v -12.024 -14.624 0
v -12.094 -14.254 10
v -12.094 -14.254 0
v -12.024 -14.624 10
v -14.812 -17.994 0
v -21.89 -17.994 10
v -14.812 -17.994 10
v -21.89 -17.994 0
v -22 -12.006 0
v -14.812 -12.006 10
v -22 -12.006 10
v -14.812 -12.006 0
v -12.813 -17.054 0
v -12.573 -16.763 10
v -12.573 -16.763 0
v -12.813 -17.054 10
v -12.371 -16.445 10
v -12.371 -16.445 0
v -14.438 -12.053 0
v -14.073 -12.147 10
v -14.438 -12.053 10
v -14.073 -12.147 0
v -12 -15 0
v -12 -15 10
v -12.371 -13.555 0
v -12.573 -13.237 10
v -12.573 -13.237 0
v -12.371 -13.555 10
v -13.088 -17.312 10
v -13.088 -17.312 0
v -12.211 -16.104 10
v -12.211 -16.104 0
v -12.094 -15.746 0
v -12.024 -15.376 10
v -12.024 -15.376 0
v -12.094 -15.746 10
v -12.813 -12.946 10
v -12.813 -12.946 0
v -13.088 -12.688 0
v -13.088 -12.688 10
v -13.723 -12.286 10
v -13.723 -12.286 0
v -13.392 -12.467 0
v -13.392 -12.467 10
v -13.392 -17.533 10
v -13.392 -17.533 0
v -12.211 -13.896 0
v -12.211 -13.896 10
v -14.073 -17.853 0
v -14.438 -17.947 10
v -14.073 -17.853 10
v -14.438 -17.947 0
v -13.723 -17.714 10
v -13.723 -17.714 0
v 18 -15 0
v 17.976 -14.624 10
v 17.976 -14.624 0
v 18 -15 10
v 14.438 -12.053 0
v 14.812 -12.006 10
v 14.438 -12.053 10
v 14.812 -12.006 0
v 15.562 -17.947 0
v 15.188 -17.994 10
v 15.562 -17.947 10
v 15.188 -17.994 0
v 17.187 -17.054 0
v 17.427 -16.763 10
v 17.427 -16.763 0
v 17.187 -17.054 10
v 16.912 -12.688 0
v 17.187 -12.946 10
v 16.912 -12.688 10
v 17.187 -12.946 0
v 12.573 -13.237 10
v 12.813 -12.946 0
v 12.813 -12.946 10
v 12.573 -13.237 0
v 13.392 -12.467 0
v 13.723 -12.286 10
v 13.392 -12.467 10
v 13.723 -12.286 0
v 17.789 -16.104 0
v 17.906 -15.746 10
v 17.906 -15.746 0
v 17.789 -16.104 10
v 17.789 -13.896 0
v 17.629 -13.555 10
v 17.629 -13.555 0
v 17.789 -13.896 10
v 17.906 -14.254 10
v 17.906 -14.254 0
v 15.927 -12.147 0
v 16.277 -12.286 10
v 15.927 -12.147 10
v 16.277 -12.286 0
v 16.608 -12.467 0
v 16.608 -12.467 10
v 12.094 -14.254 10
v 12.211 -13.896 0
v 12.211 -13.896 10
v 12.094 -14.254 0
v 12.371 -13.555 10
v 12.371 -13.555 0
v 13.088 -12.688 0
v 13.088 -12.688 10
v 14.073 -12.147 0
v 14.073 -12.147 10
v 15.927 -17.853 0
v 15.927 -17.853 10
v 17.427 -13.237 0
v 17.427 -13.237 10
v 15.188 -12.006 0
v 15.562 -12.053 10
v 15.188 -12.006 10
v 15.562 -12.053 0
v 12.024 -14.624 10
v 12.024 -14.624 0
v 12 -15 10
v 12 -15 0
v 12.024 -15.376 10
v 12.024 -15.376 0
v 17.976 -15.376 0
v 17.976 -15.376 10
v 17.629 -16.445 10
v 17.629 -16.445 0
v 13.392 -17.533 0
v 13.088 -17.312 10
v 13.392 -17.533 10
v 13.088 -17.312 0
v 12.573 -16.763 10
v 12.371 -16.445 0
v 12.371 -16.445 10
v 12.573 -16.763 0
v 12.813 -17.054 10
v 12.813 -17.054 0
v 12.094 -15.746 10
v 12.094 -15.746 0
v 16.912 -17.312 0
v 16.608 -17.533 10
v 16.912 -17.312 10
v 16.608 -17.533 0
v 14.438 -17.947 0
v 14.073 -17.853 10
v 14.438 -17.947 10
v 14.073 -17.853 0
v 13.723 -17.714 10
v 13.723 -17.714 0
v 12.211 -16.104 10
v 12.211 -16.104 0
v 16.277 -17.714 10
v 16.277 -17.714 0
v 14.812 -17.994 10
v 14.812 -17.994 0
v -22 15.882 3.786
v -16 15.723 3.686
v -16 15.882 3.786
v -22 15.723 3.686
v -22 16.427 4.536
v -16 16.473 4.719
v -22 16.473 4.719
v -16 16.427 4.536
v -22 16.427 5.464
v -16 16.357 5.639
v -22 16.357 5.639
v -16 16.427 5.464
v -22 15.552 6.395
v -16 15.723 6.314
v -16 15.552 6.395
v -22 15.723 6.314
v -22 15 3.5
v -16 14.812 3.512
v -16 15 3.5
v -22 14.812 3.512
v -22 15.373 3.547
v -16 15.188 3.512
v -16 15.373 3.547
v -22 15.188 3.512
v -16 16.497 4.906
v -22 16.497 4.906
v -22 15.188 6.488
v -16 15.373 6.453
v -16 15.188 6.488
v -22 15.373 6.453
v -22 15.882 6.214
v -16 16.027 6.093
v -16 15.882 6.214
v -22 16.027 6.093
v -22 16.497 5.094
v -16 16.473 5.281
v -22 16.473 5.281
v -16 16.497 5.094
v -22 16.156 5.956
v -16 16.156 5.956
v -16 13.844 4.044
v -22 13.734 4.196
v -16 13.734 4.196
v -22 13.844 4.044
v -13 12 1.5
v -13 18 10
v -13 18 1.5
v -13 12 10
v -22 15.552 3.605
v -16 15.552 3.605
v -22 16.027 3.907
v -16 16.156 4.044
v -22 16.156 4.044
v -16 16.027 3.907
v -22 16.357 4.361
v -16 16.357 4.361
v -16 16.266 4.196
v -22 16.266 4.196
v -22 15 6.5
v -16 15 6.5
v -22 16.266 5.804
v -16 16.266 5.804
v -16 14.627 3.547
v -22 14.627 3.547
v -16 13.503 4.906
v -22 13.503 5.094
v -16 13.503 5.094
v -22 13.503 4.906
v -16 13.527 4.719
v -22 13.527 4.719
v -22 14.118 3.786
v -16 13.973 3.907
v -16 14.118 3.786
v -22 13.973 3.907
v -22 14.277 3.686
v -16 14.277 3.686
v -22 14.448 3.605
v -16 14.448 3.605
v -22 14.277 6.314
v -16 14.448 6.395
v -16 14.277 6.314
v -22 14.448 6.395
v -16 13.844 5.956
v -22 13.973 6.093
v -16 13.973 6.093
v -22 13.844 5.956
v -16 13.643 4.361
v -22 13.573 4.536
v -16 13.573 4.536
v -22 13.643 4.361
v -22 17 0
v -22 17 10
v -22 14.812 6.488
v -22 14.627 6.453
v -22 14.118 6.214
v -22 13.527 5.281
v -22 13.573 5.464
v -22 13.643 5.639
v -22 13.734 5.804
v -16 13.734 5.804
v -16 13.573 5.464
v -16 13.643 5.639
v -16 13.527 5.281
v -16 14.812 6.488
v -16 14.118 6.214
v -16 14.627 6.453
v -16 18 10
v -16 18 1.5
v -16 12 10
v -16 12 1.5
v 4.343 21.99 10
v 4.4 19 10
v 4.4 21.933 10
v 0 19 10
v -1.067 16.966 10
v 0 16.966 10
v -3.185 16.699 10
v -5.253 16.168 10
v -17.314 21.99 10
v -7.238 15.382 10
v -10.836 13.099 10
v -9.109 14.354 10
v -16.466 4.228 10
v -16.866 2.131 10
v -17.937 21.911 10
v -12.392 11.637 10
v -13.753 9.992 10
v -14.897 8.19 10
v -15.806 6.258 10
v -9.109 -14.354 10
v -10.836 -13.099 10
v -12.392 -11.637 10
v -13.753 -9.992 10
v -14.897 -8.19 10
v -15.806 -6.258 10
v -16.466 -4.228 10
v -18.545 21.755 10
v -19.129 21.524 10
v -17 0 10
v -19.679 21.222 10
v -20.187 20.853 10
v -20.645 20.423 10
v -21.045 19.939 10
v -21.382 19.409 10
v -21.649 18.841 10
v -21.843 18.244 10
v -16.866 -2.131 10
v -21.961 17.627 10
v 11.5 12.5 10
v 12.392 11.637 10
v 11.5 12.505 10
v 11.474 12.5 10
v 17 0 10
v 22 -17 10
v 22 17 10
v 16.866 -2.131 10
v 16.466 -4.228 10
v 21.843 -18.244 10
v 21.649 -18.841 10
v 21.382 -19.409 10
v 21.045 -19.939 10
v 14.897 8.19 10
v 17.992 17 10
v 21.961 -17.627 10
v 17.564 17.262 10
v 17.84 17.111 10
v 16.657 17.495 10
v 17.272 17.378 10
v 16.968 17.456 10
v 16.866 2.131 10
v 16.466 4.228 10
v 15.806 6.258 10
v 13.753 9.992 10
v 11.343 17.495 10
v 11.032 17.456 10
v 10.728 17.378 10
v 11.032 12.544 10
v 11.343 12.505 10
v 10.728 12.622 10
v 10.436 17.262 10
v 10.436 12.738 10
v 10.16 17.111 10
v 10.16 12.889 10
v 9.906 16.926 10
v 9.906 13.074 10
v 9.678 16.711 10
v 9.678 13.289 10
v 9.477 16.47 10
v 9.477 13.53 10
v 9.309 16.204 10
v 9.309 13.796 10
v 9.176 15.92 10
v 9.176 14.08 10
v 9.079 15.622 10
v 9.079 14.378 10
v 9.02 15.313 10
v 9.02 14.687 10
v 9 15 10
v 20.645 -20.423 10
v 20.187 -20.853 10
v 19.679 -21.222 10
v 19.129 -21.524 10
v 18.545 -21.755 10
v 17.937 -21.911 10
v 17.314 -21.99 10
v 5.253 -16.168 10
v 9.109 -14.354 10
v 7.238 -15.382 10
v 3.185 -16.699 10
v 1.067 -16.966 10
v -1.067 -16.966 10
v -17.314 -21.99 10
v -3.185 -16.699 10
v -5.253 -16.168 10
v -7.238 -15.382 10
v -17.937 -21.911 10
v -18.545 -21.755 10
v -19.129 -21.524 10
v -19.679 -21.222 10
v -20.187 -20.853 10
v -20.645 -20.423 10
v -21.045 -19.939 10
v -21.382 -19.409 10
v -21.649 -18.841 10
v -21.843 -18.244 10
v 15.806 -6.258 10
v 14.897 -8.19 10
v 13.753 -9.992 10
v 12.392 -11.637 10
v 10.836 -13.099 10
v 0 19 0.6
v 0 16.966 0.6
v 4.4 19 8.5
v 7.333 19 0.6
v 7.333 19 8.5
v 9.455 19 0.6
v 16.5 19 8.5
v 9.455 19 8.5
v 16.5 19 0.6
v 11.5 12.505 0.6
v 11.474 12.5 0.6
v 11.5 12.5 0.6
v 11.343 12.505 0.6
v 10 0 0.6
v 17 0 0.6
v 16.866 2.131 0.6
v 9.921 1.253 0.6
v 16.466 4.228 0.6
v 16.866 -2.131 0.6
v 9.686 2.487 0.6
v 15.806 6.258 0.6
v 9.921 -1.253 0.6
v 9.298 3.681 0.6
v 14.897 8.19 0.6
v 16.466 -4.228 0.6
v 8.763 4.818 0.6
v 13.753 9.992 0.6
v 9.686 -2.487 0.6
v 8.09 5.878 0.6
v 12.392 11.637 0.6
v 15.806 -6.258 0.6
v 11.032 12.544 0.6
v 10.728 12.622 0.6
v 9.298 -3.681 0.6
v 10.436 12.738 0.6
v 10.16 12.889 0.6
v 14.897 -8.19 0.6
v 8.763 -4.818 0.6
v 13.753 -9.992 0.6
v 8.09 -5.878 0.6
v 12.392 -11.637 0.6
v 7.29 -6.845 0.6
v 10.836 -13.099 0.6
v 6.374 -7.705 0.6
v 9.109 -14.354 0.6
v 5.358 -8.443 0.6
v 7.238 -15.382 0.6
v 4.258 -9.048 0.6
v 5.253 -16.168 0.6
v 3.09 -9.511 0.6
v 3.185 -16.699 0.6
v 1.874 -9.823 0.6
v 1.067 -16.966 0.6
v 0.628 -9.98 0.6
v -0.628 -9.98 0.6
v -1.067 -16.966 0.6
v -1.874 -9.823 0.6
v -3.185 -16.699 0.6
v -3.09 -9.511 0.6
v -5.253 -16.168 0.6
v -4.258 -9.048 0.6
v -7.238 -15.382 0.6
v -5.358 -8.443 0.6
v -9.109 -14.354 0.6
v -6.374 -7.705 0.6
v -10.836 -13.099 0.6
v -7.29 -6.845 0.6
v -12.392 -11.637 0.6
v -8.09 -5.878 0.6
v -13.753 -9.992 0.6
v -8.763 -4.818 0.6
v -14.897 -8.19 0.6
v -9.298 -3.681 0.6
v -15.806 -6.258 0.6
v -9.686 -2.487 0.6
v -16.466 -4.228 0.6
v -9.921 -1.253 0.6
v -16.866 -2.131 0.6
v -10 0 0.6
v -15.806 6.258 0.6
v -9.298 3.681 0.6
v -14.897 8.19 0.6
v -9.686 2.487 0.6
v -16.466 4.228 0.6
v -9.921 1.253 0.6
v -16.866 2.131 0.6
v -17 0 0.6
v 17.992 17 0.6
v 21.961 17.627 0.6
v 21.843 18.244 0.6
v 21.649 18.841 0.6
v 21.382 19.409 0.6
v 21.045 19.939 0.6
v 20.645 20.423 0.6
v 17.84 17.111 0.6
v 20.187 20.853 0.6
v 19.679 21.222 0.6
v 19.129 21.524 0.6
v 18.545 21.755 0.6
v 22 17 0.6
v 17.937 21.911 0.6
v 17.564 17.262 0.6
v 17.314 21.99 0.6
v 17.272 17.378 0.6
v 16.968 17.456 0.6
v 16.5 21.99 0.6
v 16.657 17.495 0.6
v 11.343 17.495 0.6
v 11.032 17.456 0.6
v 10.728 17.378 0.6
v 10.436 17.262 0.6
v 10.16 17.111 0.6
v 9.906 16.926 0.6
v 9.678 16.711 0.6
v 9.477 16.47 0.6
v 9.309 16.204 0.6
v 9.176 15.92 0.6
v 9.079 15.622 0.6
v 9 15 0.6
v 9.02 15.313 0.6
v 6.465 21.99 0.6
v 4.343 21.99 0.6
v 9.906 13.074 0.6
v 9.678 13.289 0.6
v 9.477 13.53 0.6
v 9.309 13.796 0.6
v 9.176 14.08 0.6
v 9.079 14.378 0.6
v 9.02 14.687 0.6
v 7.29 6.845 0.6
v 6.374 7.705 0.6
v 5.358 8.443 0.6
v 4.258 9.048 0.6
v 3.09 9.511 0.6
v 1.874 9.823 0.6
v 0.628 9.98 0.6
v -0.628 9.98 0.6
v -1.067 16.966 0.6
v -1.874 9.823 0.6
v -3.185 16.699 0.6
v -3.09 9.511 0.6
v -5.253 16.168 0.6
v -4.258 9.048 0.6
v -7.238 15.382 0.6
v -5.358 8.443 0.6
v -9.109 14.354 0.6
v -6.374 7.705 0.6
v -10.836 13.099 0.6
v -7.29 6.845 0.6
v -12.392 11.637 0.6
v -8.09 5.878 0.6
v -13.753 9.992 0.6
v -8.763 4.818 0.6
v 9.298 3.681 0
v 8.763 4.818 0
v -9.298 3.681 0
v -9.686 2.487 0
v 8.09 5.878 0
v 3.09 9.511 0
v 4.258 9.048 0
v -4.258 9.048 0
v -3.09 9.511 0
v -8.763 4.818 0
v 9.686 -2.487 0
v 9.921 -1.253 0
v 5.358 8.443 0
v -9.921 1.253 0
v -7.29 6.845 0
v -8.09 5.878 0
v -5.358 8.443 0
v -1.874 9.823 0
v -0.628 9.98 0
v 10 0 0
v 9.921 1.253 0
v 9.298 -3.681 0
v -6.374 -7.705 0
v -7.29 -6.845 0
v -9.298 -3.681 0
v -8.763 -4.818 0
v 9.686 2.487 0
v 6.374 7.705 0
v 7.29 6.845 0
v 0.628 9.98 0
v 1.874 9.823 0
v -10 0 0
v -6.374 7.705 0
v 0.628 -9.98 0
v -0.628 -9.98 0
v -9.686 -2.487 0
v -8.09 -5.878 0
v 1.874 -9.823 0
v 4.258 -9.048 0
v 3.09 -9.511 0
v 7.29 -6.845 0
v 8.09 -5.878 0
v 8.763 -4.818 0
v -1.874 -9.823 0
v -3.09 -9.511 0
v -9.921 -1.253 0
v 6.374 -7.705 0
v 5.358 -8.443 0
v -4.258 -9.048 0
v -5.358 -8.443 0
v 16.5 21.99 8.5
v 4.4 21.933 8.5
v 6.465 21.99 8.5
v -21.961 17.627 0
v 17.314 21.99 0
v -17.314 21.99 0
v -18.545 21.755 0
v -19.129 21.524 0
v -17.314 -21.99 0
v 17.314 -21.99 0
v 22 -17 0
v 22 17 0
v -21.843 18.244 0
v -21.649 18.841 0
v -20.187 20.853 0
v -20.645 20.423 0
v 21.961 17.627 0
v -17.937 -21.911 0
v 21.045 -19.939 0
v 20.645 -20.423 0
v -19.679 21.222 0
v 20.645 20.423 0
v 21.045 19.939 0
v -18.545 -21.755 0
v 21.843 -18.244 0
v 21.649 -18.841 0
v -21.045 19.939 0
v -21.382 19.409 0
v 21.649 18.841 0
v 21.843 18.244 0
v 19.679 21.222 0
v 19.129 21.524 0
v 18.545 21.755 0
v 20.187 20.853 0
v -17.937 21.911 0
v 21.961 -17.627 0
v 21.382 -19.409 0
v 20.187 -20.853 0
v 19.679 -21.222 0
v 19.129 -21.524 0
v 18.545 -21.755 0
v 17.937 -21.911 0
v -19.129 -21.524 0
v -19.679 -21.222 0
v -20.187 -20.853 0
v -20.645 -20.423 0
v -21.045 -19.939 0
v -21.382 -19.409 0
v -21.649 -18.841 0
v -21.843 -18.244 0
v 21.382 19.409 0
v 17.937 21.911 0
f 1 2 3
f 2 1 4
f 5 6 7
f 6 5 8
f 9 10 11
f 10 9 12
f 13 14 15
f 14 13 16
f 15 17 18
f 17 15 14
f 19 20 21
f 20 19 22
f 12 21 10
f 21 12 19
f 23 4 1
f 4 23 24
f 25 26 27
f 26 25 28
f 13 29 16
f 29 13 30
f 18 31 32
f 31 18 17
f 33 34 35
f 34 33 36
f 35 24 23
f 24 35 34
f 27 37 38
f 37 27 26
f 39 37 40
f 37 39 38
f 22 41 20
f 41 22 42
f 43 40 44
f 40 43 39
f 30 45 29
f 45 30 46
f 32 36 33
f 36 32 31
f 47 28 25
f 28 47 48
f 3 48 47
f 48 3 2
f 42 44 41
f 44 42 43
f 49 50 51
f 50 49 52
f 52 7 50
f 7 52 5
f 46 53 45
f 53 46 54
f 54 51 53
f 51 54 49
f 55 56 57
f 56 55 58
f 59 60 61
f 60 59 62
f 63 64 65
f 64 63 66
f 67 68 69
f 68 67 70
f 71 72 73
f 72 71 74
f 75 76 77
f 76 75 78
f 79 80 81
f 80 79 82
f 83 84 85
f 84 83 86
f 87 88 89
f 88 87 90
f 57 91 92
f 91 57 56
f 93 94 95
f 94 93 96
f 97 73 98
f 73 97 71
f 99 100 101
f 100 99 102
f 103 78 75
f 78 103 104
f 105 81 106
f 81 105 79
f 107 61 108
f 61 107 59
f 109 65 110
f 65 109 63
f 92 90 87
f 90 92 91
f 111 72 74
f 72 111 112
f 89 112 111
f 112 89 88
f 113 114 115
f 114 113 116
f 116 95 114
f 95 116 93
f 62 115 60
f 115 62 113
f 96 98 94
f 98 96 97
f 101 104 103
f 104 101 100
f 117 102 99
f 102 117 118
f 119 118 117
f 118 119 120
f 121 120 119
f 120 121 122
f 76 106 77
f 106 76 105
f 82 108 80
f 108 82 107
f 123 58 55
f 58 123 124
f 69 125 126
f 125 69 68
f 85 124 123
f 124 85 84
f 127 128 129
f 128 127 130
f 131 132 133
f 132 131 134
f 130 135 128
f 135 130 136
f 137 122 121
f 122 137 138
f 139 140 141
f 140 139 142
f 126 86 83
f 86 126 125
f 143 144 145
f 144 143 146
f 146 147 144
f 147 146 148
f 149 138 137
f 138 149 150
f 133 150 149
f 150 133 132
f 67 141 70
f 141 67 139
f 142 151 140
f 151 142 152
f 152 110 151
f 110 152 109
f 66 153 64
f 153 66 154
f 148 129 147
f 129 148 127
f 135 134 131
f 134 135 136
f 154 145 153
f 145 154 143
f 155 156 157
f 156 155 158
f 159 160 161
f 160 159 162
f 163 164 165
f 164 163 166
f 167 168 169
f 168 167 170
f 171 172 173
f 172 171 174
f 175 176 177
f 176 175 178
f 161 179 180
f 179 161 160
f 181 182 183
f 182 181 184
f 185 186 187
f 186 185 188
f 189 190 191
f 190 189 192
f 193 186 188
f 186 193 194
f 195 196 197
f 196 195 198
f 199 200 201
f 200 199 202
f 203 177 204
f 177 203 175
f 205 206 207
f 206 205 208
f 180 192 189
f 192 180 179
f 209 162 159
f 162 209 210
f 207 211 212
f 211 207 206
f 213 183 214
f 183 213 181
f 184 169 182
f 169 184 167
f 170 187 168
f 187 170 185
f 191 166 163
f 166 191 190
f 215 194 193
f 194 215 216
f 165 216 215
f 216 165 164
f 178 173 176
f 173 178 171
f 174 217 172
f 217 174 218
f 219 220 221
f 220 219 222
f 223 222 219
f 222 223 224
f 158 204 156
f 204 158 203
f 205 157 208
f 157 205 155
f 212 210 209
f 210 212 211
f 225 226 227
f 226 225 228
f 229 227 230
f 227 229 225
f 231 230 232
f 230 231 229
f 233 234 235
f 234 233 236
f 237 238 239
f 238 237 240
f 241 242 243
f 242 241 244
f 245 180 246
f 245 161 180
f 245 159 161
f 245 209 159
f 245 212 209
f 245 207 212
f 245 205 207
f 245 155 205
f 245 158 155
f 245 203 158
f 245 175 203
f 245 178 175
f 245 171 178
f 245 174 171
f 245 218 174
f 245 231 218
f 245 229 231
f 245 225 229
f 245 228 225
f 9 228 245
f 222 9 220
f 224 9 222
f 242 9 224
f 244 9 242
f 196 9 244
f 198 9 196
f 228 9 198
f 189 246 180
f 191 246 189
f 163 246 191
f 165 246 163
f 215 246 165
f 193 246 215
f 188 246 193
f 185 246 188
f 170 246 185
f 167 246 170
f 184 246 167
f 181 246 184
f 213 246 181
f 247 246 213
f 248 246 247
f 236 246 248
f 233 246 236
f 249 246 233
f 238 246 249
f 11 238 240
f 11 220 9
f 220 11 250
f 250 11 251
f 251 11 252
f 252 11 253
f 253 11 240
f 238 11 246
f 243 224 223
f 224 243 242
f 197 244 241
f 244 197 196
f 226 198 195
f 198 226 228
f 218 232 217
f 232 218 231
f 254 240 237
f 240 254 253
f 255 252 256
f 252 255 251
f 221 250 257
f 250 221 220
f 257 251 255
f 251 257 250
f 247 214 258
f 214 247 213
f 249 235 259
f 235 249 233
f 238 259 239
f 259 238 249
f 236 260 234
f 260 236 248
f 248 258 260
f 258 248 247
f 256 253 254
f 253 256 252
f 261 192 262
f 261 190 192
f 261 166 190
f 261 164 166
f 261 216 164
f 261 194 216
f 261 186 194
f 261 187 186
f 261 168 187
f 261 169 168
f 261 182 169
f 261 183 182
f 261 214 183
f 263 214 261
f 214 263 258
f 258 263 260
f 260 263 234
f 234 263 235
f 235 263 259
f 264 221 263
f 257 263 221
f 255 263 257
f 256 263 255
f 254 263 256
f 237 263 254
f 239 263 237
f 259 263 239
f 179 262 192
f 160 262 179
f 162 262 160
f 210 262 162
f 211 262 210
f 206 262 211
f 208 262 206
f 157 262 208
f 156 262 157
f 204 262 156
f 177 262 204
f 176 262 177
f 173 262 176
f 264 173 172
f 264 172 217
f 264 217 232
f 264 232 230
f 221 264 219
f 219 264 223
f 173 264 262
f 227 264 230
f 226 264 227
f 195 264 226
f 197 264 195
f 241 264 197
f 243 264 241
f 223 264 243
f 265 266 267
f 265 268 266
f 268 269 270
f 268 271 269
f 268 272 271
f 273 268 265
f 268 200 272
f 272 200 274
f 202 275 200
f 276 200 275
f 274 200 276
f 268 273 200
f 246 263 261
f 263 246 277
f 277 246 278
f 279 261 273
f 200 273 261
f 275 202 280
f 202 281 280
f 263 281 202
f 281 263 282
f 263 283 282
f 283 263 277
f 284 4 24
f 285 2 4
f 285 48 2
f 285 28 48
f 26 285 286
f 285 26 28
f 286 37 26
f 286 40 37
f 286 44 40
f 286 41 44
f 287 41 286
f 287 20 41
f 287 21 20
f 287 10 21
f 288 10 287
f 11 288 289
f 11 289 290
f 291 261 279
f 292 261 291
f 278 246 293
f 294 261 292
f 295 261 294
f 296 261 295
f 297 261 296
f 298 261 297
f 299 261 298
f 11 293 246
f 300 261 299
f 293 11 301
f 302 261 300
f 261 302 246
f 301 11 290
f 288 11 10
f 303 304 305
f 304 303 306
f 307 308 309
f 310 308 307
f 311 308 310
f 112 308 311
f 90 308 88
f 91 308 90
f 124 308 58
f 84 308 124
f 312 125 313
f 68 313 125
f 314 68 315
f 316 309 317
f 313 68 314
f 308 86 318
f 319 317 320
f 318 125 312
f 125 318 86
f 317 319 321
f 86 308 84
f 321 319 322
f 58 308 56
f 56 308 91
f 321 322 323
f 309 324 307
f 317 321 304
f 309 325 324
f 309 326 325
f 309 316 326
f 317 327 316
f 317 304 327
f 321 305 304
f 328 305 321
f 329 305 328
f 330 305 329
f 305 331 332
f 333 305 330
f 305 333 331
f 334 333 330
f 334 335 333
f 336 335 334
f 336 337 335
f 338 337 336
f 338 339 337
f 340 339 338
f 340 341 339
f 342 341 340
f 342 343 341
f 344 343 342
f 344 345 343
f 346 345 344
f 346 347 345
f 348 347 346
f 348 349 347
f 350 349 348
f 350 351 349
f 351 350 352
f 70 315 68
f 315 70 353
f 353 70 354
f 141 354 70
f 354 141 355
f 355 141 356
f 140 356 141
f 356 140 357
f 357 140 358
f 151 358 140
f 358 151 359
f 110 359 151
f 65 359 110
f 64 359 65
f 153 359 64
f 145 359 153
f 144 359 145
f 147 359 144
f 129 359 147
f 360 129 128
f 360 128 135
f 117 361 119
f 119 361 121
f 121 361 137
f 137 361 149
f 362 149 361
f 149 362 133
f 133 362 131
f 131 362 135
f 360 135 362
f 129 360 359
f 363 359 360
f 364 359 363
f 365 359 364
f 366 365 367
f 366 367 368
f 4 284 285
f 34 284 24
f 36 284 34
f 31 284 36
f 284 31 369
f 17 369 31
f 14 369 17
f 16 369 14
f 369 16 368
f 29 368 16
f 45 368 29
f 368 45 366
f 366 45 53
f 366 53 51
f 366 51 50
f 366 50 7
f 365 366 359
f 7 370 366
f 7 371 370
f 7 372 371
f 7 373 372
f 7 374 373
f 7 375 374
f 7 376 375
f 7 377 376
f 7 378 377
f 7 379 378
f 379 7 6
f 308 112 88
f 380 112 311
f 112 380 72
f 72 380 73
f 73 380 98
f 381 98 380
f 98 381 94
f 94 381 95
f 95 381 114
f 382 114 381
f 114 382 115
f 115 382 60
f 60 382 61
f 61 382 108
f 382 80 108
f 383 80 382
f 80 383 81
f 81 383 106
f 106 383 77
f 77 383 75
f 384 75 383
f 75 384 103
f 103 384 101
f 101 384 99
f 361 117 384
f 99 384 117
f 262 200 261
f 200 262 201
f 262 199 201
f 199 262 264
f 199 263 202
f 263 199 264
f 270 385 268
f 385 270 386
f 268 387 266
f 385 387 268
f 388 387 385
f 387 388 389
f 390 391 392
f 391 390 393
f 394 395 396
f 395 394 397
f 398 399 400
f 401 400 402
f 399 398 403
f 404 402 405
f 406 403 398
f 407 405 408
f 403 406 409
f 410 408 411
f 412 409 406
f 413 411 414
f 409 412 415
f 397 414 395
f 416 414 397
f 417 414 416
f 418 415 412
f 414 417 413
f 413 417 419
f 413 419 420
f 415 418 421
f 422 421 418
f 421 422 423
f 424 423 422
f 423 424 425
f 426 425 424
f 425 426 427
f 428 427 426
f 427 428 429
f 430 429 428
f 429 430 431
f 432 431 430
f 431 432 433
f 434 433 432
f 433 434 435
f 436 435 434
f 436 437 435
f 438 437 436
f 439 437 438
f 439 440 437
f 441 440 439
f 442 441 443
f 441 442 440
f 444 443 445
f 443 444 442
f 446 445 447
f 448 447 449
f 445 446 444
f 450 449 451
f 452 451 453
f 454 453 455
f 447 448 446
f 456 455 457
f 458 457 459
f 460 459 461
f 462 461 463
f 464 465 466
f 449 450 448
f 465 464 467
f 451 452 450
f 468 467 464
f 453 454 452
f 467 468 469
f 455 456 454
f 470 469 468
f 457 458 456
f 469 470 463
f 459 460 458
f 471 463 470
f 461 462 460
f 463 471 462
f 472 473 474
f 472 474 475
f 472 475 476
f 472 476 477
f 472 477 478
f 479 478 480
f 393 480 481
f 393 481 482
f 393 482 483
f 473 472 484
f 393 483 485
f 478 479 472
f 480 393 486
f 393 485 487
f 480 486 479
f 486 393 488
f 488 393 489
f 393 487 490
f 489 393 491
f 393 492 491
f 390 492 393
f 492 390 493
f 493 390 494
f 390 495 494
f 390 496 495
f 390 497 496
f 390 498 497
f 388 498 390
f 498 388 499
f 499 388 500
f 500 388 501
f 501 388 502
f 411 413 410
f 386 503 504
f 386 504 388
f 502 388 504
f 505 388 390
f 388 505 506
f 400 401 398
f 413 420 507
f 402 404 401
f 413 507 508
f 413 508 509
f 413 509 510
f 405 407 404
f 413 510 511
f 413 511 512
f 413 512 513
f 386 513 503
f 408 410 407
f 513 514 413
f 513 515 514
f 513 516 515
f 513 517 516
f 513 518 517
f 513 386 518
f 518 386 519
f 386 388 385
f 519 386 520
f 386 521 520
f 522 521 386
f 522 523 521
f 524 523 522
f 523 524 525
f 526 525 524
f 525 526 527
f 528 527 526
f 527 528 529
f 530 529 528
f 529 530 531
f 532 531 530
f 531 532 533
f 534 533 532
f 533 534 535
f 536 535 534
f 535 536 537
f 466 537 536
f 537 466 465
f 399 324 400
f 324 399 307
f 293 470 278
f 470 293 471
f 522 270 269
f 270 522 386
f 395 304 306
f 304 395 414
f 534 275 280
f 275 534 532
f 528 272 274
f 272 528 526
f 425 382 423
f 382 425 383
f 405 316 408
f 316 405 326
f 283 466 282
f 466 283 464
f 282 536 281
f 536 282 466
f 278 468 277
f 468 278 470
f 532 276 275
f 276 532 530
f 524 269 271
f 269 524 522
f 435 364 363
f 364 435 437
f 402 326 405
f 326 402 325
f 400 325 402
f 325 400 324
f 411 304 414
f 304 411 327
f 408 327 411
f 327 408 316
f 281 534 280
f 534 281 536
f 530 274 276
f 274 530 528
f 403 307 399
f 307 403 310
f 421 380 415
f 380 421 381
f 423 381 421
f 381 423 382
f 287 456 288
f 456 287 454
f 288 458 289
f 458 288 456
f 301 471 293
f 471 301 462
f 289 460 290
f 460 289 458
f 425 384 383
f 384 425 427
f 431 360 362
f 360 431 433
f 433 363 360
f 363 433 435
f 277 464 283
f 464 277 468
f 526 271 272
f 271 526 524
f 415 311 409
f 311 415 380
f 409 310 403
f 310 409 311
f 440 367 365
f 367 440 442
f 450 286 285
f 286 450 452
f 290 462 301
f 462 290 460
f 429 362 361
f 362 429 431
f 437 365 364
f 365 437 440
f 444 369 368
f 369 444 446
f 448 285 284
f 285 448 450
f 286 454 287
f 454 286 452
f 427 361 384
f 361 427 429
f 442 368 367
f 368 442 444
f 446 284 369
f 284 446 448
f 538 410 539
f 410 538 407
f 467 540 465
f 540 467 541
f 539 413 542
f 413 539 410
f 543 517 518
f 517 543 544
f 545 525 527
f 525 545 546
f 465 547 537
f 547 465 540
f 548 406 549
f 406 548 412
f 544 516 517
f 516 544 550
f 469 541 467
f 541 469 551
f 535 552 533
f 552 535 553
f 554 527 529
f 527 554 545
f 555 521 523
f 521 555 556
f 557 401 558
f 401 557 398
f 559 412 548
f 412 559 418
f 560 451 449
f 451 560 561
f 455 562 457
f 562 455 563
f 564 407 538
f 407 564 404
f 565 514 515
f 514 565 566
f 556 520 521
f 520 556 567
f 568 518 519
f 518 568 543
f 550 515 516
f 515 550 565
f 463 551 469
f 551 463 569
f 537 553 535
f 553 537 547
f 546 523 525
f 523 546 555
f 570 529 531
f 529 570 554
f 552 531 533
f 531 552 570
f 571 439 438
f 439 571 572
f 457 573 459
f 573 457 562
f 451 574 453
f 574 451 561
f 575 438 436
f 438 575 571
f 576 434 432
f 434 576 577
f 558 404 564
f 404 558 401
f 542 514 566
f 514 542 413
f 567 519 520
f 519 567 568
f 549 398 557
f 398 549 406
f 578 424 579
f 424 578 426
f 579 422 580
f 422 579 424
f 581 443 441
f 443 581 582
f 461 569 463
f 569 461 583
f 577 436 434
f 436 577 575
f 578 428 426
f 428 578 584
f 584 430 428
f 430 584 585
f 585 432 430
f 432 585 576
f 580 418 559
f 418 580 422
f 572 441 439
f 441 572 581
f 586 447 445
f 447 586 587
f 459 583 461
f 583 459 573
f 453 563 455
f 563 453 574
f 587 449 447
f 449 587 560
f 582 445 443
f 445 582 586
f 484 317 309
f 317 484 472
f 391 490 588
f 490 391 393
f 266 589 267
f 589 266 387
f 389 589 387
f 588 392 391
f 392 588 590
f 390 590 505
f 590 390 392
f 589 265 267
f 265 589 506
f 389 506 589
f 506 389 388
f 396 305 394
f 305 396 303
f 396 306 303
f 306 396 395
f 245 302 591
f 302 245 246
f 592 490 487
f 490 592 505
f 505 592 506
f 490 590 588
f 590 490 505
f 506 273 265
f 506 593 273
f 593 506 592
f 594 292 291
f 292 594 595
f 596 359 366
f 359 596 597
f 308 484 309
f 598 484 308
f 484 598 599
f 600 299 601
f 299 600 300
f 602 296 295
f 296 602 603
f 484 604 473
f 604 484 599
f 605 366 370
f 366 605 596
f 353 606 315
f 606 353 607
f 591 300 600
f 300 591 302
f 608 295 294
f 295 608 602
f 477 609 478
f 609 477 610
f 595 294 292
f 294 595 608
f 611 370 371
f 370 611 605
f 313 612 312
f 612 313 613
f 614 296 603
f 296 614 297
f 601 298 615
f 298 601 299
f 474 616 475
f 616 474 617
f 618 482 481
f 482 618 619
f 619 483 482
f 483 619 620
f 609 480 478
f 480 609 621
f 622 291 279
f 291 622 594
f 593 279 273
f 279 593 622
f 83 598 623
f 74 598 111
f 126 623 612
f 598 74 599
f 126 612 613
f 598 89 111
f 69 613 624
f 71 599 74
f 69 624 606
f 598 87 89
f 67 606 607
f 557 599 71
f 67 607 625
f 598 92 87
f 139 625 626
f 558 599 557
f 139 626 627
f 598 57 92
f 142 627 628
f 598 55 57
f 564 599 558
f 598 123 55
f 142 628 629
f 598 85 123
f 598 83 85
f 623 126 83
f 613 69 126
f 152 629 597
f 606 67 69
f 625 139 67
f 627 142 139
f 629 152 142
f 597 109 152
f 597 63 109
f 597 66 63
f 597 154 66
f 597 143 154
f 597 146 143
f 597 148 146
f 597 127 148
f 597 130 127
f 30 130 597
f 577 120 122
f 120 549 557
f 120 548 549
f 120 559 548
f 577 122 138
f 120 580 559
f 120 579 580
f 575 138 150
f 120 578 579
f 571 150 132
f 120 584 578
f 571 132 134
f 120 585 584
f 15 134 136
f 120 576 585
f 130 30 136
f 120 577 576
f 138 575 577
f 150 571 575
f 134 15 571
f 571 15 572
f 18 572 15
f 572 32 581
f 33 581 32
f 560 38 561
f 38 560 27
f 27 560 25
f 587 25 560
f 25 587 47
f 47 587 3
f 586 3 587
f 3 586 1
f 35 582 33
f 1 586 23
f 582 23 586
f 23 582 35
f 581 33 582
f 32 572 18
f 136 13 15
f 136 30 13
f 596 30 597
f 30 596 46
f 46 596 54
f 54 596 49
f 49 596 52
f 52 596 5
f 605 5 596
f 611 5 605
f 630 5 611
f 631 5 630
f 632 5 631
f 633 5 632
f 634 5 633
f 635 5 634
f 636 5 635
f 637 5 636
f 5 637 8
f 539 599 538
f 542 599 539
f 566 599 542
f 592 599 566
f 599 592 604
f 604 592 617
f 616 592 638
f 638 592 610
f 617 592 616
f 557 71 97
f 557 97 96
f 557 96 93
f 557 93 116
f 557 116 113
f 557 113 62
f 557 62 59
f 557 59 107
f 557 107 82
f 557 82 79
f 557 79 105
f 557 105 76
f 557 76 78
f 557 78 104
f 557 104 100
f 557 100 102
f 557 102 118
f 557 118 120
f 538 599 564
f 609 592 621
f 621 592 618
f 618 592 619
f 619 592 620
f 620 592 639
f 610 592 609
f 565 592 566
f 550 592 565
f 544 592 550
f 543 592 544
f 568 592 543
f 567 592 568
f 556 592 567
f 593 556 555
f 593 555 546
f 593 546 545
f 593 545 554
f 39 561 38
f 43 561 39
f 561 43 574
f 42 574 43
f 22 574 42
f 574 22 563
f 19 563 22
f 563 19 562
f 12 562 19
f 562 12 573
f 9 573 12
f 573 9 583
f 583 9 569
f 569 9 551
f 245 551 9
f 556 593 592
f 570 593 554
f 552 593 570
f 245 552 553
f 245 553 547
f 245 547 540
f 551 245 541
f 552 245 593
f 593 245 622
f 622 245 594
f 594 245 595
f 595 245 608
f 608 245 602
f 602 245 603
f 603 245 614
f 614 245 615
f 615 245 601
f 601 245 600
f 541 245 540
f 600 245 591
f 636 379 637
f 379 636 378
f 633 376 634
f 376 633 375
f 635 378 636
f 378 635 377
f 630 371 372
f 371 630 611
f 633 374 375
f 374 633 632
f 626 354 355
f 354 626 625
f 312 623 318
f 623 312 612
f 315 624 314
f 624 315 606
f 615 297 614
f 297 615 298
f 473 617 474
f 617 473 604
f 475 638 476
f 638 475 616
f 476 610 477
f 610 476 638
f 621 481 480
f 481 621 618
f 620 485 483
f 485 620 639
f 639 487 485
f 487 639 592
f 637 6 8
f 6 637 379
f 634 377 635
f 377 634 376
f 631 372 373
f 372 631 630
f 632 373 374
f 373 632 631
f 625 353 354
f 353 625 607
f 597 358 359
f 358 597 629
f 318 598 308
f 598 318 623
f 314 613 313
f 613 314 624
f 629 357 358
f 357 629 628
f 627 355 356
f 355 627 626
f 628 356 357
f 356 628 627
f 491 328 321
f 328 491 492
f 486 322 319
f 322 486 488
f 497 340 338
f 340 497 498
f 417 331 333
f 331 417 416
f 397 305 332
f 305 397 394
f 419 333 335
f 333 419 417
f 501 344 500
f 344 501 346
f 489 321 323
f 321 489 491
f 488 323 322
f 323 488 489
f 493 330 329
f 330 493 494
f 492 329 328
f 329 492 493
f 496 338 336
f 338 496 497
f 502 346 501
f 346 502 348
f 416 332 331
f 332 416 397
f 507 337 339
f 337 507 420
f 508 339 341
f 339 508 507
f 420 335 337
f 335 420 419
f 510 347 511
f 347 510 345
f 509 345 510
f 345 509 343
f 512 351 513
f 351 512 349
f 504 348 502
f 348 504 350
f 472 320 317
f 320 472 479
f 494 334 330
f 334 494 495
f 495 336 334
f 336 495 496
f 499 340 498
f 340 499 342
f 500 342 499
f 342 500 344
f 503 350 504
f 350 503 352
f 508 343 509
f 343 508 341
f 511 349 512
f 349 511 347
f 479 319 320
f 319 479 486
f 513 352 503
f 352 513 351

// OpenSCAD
$fn = 50;


union() {
	difference() {
		union() {
			translate(v = [0, 0, 0]) {
				rotate(a = [0, 0, 0]) {
					hull() {
						translate(v = [-17.0000000000, 17.0000000000, 0]) {
							rotate(a = [0, 0, 0]) {
								translate(v = [0, 0, 0]) {
									rotate(a = [0, 0, 0]) {
										cylinder(h = 10, r = 5);
									}
								}
							}
						}
						translate(v = [17.0000000000, 17.0000000000, 0]) {
							rotate(a = [0, 0, 0]) {
								translate(v = [0, 0, 0]) {
									rotate(a = [0, 0, 0]) {
										cylinder(h = 10, r = 5);
									}
								}
							}
						}
						translate(v = [-17.0000000000, -17.0000000000, 0]) {
							rotate(a = [0, 0, 0]) {
								translate(v = [0, 0, 0]) {
									rotate(a = [0, 0, 0]) {
										cylinder(h = 10, r = 5);
									}
								}
							}
						}
						translate(v = [17.0000000000, -17.0000000000, 0]) {
							rotate(a = [0, 0, 0]) {
								translate(v = [0, 0, 0]) {
									rotate(a = [0, 0, 0]) {
										cylinder(h = 10, r = 5);
									}
								}
							}
						}
					}
				}
			}
		}
		union() {
			translate(v = [-22.5000000000, -15.0000000000, -125]) {
				rotate(a = [0, 0, 0]) {
					hull() {
						translate(v = [7.5000000000, 0, 0]) {
							rotate(a = [0, 0, 0]) {
								translate(v = [0, 0, 0]) {
									rotate(a = [0, 0, 0]) {
										cylinder(h = 250, r = 3.0000000000);
									}
								}
							}
						}
						translate(v = [-7.5000000000, 0, 0]) {
							rotate(a = [0, 0, 0]) {
								translate(v = [0, 0, 0]) {
									rotate(a = [0, 0, 0]) {
										cylinder(h = 250, r = 3.0000000000);
									}
								}
							}
						}
					}
				}
			}
			translate(v = [15.0000000000, -15.0000000000, -125.0000000000]) {
				rotate(a = [0, 0, 0]) {
					cylinder(h = 250, r = 3.0000000000);
				}
			}
			translate(v = [-22.0000000000, 15.0000000000, 5.0000000000]) {
				rotate(a = [0, 90, 0]) {
					cylinder(h = 9, r = 1.5000000000);
				}
			}
			translate(v = [-16.0000000000, 12.0000000000, 1.5000000000]) {
				rotate(a = [0, 0, 0]) {
					cube(size = [3, 6, 8.5000000000]);
				}
			}
			translate(v = [0.0000000000, 11.0000000000, 0.6000000000]) {
				rotate(a = [0, 0, 0]) {
					cube(size = [11, 8, 12.4000000000]);
				}
			}
			translate(v = [0, 0, 0.6000000000]) {
				rotate(a = [0, 0, 0]) {
					cylinder(h = 12.4000000000, r = 17.0000000000);
				}
			}
			translate(v = [0, 0, -5.0000000000]) {
				rotate(a = [0, 0, 0]) {
					cylinder(h = 10, r = 10.0000000000);
				}
			}
			translate(v = [0.0000000000, 17.0000000000, 0.6000000000]) {
				rotate(a = [0, 0, 0]) {
					cube(size = [22.0000000000, 2, 12.4000000000]);
				}
			}
			translate(v = [16.5000000000, 17.0000000000, 0.6000000000]) {
				rotate(a = [0, 0, 0]) {
					cube(size = [5.5000000000, 5, 12.4000000000]);
				}
			}
			translate(v = [4.4000000000, 17.0000000000, 8.5000000000]) {
				rotate(a = [0, 0, 0]) {
					cube(size = [17.6000000000, 5, 1.5000000000]);
				}
			}
			translate(v = [3.5833333333, 22.7500000000, 0.6000000000]) {
				rotate(a = [0, 0, -45]) {
					cube(size = [7.5000000000, 1.5000000000, 12.4000000000]);
				}
			}
			translate(v = [2.5000000000, 12.5000000000, 0.6000000000]) {
				rotate(a = [0, 0, 0]) {
					cube(size = [9.0000000000, 5, 9.4000000000]);
				}
			}
		}
	}
	union() {
		translate(v = [14, 15, 0]) {
			rotate(a = [0, 0, 0]) {
				hull() {
					translate(v = [2.5000000000, 0, 0]) {
						rotate(a = [0, 0, 0]) {
							translate(v = [0, 0, 0]) {
								rotate(a = [0, 0, 0]) {
									cylinder(h = 10, r = 2.5000000000);
								}
							}
						}
					}
					translate(v = [-2.5000000000, 0, 0]) {
						rotate(a = [0, 0, 0]) {
							translate(v = [0, 0, 0]) {
								rotate(a = [0, 0, 0]) {
									cylinder(h = 10, r = 2.5000000000);
								}
							}
						}
					}
				}
			}
		}
	}
}
